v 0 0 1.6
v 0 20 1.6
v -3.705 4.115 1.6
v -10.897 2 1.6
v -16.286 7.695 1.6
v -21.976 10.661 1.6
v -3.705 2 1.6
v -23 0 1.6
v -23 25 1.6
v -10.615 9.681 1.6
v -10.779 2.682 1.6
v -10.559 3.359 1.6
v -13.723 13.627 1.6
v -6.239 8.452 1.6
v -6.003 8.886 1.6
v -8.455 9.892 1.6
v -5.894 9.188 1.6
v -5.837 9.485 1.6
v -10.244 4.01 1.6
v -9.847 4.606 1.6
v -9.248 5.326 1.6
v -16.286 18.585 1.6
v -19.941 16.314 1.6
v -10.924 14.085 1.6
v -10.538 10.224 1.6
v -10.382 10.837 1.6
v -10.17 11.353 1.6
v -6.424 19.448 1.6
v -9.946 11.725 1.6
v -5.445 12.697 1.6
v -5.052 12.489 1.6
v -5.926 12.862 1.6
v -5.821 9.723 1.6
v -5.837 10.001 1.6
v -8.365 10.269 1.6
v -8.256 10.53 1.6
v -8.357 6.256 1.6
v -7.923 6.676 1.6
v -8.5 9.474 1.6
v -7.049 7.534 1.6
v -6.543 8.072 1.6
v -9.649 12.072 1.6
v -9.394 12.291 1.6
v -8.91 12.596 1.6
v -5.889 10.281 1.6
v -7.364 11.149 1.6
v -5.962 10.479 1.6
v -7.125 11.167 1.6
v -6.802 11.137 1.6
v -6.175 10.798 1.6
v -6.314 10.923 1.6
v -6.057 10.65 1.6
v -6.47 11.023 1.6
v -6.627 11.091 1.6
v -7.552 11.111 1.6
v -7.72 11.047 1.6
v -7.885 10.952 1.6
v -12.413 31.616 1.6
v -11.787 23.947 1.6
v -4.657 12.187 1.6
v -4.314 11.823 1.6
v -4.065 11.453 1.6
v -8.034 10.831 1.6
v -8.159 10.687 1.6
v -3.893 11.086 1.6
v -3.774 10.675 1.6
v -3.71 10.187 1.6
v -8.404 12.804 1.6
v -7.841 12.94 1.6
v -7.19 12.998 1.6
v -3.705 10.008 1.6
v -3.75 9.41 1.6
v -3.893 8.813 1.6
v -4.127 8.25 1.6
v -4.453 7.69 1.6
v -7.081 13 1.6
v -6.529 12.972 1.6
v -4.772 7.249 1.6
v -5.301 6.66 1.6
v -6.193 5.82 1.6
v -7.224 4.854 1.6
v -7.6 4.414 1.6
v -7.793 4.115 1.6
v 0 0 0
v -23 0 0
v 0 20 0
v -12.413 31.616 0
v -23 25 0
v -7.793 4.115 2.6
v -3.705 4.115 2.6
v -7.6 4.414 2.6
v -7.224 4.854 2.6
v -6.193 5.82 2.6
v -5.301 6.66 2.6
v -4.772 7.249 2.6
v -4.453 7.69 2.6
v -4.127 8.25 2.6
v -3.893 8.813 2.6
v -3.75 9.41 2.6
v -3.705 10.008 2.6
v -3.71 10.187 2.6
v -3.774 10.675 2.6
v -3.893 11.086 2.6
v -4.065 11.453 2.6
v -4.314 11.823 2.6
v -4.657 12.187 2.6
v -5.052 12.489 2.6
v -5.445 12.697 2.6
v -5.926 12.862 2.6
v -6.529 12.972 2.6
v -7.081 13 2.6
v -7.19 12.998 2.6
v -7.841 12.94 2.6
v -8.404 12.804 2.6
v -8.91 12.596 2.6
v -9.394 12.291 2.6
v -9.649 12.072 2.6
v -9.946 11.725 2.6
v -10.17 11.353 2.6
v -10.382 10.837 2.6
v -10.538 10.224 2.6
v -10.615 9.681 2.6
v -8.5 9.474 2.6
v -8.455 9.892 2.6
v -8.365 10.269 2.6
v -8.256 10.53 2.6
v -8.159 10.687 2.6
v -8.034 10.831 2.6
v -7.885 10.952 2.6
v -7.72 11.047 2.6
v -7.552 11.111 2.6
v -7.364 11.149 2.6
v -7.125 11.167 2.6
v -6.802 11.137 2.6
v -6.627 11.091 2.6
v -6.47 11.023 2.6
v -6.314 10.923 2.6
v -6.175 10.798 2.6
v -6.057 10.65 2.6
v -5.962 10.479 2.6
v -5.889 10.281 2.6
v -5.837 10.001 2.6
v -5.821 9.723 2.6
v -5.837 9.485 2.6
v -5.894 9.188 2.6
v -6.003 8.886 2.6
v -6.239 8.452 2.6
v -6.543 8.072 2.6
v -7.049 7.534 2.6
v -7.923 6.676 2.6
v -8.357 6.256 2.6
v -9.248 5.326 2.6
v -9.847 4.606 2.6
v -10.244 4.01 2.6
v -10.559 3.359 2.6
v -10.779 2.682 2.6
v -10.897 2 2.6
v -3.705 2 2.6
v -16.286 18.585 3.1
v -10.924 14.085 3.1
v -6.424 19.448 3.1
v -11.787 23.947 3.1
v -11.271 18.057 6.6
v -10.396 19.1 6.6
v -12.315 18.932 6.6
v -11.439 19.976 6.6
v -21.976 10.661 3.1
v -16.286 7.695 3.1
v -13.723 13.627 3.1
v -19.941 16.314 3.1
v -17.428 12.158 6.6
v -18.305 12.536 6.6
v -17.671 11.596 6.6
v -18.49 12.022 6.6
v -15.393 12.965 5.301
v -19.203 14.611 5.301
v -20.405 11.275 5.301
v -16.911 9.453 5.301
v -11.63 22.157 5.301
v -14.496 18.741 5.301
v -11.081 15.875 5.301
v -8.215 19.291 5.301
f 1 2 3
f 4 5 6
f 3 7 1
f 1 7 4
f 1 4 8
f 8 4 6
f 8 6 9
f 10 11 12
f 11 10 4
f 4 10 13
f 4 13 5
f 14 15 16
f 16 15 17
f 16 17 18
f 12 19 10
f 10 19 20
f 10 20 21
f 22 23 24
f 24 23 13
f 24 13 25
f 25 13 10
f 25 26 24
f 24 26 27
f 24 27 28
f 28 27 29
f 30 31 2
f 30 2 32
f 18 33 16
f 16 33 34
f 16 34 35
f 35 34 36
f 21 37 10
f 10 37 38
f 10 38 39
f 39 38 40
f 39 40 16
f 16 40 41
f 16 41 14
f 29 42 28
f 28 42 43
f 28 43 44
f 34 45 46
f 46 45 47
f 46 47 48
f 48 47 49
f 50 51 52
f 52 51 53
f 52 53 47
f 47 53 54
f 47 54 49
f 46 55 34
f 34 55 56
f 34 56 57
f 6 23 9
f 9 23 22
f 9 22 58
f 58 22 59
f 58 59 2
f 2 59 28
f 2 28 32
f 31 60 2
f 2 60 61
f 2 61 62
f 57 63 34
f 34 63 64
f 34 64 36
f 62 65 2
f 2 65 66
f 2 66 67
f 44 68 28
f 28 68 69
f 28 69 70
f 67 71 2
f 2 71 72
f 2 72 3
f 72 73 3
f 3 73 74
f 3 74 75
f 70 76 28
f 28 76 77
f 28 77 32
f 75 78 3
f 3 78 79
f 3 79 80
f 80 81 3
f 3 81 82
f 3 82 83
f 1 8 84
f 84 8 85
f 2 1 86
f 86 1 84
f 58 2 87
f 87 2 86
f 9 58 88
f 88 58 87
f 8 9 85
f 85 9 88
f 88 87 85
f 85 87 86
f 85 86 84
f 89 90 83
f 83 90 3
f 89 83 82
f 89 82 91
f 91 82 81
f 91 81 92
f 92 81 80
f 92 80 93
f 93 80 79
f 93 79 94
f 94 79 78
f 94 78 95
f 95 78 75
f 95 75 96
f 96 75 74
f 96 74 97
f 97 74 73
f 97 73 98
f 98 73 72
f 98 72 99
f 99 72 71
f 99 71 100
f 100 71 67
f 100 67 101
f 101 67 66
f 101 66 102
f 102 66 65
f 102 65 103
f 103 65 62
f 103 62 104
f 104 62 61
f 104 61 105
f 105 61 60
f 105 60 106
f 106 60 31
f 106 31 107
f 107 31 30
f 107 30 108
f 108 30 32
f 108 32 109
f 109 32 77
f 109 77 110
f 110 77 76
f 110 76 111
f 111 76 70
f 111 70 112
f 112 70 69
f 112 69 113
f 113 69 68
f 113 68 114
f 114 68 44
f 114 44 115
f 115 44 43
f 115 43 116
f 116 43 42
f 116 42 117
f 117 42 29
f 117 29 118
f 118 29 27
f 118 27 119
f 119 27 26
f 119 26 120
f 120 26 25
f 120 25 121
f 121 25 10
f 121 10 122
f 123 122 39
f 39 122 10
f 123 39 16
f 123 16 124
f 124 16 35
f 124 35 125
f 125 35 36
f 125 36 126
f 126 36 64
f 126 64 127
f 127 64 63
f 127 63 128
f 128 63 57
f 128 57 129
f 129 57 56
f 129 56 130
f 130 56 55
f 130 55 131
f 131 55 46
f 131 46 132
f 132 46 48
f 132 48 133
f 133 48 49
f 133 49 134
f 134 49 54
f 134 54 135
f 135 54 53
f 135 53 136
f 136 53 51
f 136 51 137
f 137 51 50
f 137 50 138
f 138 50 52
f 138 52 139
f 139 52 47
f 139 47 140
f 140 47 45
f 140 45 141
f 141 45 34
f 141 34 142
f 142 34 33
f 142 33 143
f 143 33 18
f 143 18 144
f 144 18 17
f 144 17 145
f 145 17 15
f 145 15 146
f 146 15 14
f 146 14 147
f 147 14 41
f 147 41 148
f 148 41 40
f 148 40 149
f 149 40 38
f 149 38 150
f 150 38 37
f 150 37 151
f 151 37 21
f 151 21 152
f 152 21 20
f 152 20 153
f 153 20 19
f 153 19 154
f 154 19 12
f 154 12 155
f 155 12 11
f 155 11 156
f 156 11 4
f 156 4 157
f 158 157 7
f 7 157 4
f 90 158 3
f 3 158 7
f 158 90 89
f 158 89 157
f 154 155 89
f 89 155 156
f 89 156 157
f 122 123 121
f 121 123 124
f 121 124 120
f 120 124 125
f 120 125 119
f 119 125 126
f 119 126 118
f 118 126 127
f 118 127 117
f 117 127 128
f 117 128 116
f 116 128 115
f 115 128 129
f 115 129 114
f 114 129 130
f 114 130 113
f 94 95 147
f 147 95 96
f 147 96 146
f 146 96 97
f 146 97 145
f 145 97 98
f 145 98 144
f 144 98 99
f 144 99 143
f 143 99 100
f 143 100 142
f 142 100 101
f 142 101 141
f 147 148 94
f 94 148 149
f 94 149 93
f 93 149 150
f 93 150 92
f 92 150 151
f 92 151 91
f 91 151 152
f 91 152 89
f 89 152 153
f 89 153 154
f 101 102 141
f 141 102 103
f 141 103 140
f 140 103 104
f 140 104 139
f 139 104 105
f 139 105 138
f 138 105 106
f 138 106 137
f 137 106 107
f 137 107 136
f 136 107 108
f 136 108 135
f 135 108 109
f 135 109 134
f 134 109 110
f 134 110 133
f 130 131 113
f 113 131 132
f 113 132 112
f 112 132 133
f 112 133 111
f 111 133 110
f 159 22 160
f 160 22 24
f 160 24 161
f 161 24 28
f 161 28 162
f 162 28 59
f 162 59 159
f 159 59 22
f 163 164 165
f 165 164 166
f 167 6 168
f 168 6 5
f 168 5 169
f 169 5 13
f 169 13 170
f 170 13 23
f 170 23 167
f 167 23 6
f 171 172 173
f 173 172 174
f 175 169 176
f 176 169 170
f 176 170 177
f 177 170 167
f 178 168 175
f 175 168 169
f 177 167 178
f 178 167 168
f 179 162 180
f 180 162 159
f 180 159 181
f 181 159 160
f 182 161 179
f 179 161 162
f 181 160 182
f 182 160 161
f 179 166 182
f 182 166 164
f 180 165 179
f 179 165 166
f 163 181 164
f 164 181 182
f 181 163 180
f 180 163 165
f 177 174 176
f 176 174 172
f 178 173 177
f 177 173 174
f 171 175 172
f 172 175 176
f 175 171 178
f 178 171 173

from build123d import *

# Parameters (mm, degrees)
P_IDAT_VYSUNUT_M5_DEPTH = 1.6
P_IDAT_VYSUNUT_M6_DEPTH = 1
P_IDAT_VYSUNUT_M7_DEPTH = 5
ZKOSEN_1_SIZE           = 3.5
ZKOSEN_1_SIZE2          = 2.020725942
ZKOSEN_1_PART_2_SIZE    = 3.5
ZKOSEN_1_PART_2_SIZE2   = 2.020725942
ZKOSEN_1_PART_3_SIZE    = 3.5
ZKOSEN_1_PART_3_SIZE2   = 2.020725942
ZKOSEN_1_PART_4_SIZE    = 3.5
ZKOSEN_1_PART_4_SIZE2   = 2.020725942
ZKOSEN_1_PART_5_SIZE    = 3.5
ZKOSEN_1_PART_5_SIZE2   = 2.020725942
ZKOSEN_1_PART_6_SIZE    = 3.5
ZKOSEN_1_PART_6_SIZE2   = 2.020725942
ZKOSEN_1_PART_7_SIZE    = 3.5
ZKOSEN_1_PART_7_SIZE2   = 2.020725942
ZKOSEN_1_PART_8_SIZE    = 3.5
ZKOSEN_1_PART_8_SIZE2   = 2.020725942
ZKOSEN_2_SIZE           = 1.5
ZKOSEN_2_SIZE2          = 0.798133329
ZKOSEN_2_PART_2_SIZE    = 1.5
ZKOSEN_2_PART_2_SIZE2   = 0.798133329
ZKOSEN_2_PART_3_SIZE    = 1.5
ZKOSEN_2_PART_3_SIZE2   = 0.798133329
ZKOSEN_2_PART_4_SIZE    = 1.5
ZKOSEN_2_PART_4_SIZE2   = 0.798133329
ZKOSEN_2_PART_5_SIZE    = 1.5
ZKOSEN_2_PART_5_SIZE2   = 0.798133329
ZKOSEN_2_PART_6_SIZE    = 1.5
ZKOSEN_2_PART_6_SIZE2   = 0.798133329
ZKOSEN_2_PART_7_SIZE    = 1.5
ZKOSEN_2_PART_7_SIZE2   = 0.798133329
ZKOSEN_2_PART_8_SIZE    = 1.5
ZKOSEN_2_PART_8_SIZE2   = 0.798133329


with BuildPart() as part:
    # Skica1 → Přidat vysunutím5 (new body)
    with BuildSketch(Plane.XY):
        Polygon((0, 0), (0, 20), (-12.412784718, 31.615626352), (-23, 25), (-23, 0), align=None)
    extrude(amount=P_IDAT_VYSUNUT_M5_DEPTH)

    # Skica2 → Přidat vysunutím6 (add)
    with BuildSketch(Plane.XY.offset(1.6)):
        with BuildLine():
            Line((-3.705128205, 4.115384615), (-3.705128205, 2))
            Line((-3.705128205, 2), (-10.897435897, 2))
            add(Edge.make_bspline(
                [(-10.897435897, 2), (-10.87308441, 2.180790308), (-10.824395089, 2.542269551), (-10.673865117, 3.070299742), (-10.472959166, 3.585566992), (-10.254913916, 4.004869463), (-10.038043764, 4.342393523), (-9.841277463, 4.618963346), (-9.60654249, 4.913221767), (-9.337245105, 5.227544267), (-9.034873554, 5.562913411), (-8.697171951, 5.918082368), (-8.322529407, 6.291350846), (-8.058961705, 6.54481851), (-7.922676282, 6.67588141)],
                knots=[0, 0, 0, 0, 0.000546661, 0.001093015, 0.001642153, 0.002203944, 0.002507135, 0.00284526, 0.003221747, 0.003635945, 0.00408685, 0.004576261, 0.005106025, 0.00567326, 0.00567326, 0.00567326, 0.00567326], degree=3))
            add(Edge.make_bspline(
                [(-7.922676282, 6.67588141), (-7.813918956, 6.780862005), (-7.606877039, 6.980714138), (-7.312048947, 7.266894293), (-7.052864674, 7.529975199), (-6.823905036, 7.763139303), (-6.630459323, 7.972323552), (-6.469982936, 8.154242742), (-6.34044346, 8.309637702), (-6.270284768, 8.408220362), (-6.239182692, 8.451923077)],
                knots=[0, 0, 0, 0, 0.000453482, 0.000863296, 0.001232576, 0.001561374, 0.001843606, 0.002087173, 0.00228919, 0.002450062, 0.002450062, 0.002450062, 0.002450062], degree=3))
            add(Edge.make_bspline(
                [(-6.239182692, 8.451923077), (-6.175493233, 8.557718073), (-6.052643645, 8.761784362), (-5.91792888, 9.082682292), (-5.837068057, 9.403513936), (-5.825971765, 9.617891805), (-5.820512821, 9.723357372)],
                knots=[0, 0, 0, 0, 0.000370068, 0.000713818, 0.001040364, 0.001356575, 0.001356575, 0.001356575, 0.001356575], degree=3))
            add(Edge.make_bspline(
                [(-5.820512821, 9.723357372), (-5.824474653, 9.833108474), (-5.831970132, 10.040748999), (-5.894821019, 10.333768175), (-6.006276867, 10.585659667), (-6.15973106, 10.797196661), (-6.353774193, 10.962935085), (-6.580616259, 11.085399693), (-6.843577862, 11.153106661), (-7.028402789, 11.16201224), (-7.125, 11.166666667)],
                knots=[0, 0, 0, 0, 0.000329064, 0.000622563, 0.000892834, 0.001149779, 0.00139978, 0.001652148, 0.001916728, 0.002206405, 0.002206405, 0.002206405, 0.002206405], degree=3))
            add(Edge.make_bspline(
                [(-7.125, 11.166666667), (-7.220944609, 11.16231978), (-7.406288878, 11.153922533), (-7.669703299, 11.080565334), (-7.900142302, 10.953576306), (-8.06436539, 10.808860058), (-8.175305876, 10.668134018), (-8.250896853, 10.545500545), (-8.316050374, 10.406151312), (-8.37378183, 10.251655158), (-8.419383153, 10.080242168), (-8.456107626, 9.893217825), (-8.485702239, 9.689575671), (-8.495113848, 9.547907653), (-8.5, 9.474358974)],
                knots=[0, 0, 0, 0, 0.000287482, 0.000555353, 0.000811759, 0.001070877, 0.001205779, 0.00134826, 0.001502018, 0.001666561, 0.00184243, 0.002033439, 0.002238177, 0.002459233, 0.002459233, 0.002459233, 0.002459233], degree=3))
            Line((-8.5, 9.474358974), (-10.615384615, 9.681490385))
            add(Edge.make_bspline(
                [(-10.615384615, 9.681490385), (-10.598377251, 9.824305509), (-10.565402688, 10.101201217), (-10.483114114, 10.498918926), (-10.378898684, 10.865831465), (-10.247788098, 11.201257911), (-10.095201314, 11.507331251), (-9.913355139, 11.779458664), (-9.708603468, 12.020654551), (-9.480769352, 12.230790543), (-9.231301205, 12.410535137), (-8.969529148, 12.57098477), (-8.690337423, 12.702604473), (-8.396799939, 12.811078884), (-8.089049352, 12.897770766), (-7.765662274, 12.955090263), (-7.42863453, 12.995409017), (-7.198577984, 12.998446608), (-7.080929487, 13)],
                knots=[0, 0, 0, 0, 0.000431306, 0.000836233, 0.001217004, 0.001574233, 0.001915203, 0.002240945, 0.002553567, 0.002862328, 0.003168197, 0.003474678, 0.003782194, 0.004092453, 0.004412693, 0.004739863, 0.005076887, 0.005429623, 0.005429623, 0.005429623, 0.005429623], degree=3))
            add(Edge.make_bspline(
                [(-7.080929487, 13), (-6.953030371, 12.997541845), (-6.703930784, 12.992754281), (-6.34028961, 12.953218534), (-5.998674853, 12.884282231), (-5.676099879, 12.79296634), (-5.375877361, 12.67105295), (-5.095505554, 12.52366473), (-4.83939702, 12.345207999), (-4.603734114, 12.145414763), (-4.393070332, 11.925706984), (-4.20854792, 11.691351493), (-4.053955652, 11.442511564), (-3.924228998, 11.182220281), (-3.827907833, 10.90628918), (-3.757724044, 10.618533633), (-3.711189366, 10.317611197), (-3.707170936, 10.112088), (-3.705128205, 10.007612179)],
                knots=[0, 0, 0, 0, 0.000383641, 0.00074719, 0.0010955, 0.001428145, 0.001751403, 0.002065859, 0.002376361, 0.002685876, 0.002991333, 0.003287991, 0.003579024, 0.003868752, 0.004158681, 0.00445369, 0.004756592, 0.005069772, 0.005069772, 0.005069772, 0.005069772], degree=3))
            add(Edge.make_bspline(
                [(-3.705128205, 10.007612179), (-3.707819477, 9.887707131), (-3.713158546, 9.649833916), (-3.764276175, 9.298186238), (-3.84237396, 8.954647512), (-3.957796338, 8.618378159), (-4.104103161, 8.28131186), (-4.292696164, 7.942692037), (-4.511666905, 7.592306518), (-4.683112364, 7.36576699), (-4.771634615, 7.248798077)],
                knots=[0, 0, 0, 0, 0.000359506, 0.000713204, 0.001063842, 0.00141504, 0.001778167, 0.002164709, 0.002576738, 0.003016589, 0.003016589, 0.003016589, 0.003016589], degree=3))
            add(Edge.make_bspline(
                [(-4.771634615, 7.248798077), (-4.80509214, 7.206658226), (-4.876750403, 7.116404431), (-4.998659939, 6.978014195), (-5.139942605, 6.826848432), (-5.298602846, 6.660077667), (-5.479881522, 6.483607708), (-5.677256214, 6.290058721), (-5.899411985, 6.089331377), (-6.12951153, 5.876418507), (-6.360611244, 5.669193404), (-6.5730252, 5.472375498), (-6.765967752, 5.298233923), (-6.930453202, 5.137155265), (-7.076156545, 5.000133027), (-7.197826149, 4.880140867), (-7.29773874, 4.780083699), (-7.43541186, 4.624119958), (-7.610585282, 4.413178934), (-7.733826947, 4.21161882), (-7.792668269, 4.115384615)],
                knots=[0, 0, 0, 0, 0.0001614, 0.000345681, 0.000553058, 0.000782151, 0.00103613, 0.001311959, 0.001611379, 0.001934216, 0.002252456, 0.002542536, 0.002802971, 0.003032064, 0.003233117, 0.00340296, 0.003544758, 0.003657116, 0.004027059, 0.004365069, 0.004365069, 0.004365069, 0.004365069], degree=3))
            Line((-7.792668269, 4.115384615), (-3.705128205, 4.115384615))
        make_face()
    extrude(amount=P_IDAT_VYSUNUT_M6_DEPTH)

    # Skica3 → Přidat vysunutím7 (add)
    with BuildSketch(Plane.XY.offset(1.6)):
        Polygon((-10.923902938, 14.085251037), (-6.42438967, 19.447562139), (-11.786700772, 23.947075407), (-16.28621404, 18.584764305), align=None)
        Polygon((-16.28621404, 7.694697517), (-13.722737722, 13.627013902), (-19.940805957, 16.31396949), (-21.976156172, 10.660855709), align=None)
    extrude(amount=P_IDAT_VYSUNUT_M7_DEPTH)

    # Zkosení1
    zkosen_1_edges = [part.edges().sort_by_distance(p)[0] for p in [
        (-13.605058489, 16.335007671, 6.6),
    ]]
    zkosen_1_side = [part.faces().sort_by_distance(p)[0] for p in [
        (-13.605058489, 16.335007671, 4.1),
    ]]
    chamfer(zkosen_1_edges, length=ZKOSEN_1_SIZE, length2=ZKOSEN_1_SIZE2, reference=zkosen_1_side[0])

    # Zkosení1 part 2
    zkosen_1_part_2_edges = [part.edges().sort_by_distance(p)[0] for p in [
        (-8.674146304, 16.766406588, 6.6),
    ]]
    zkosen_1_part_2_side = [part.faces().sort_by_distance(p)[0] for p in [
        (-8.674146304, 16.766406588, 4.1),
    ]]
    chamfer(zkosen_1_part_2_edges, length=ZKOSEN_1_PART_2_SIZE, length2=ZKOSEN_1_PART_2_SIZE2, reference=zkosen_1_part_2_side[0])

    # Zkosení1 part 3
    zkosen_1_part_3_edges = [part.edges().sort_by_distance(p)[0] for p in [
        (-9.105545221, 21.697318773, 6.6),
    ]]
    zkosen_1_part_3_side = [part.faces().sort_by_distance(p)[0] for p in [
        (-9.105545221, 21.697318773, 4.1),
    ]]
    chamfer(zkosen_1_part_3_edges, length=ZKOSEN_1_PART_3_SIZE, length2=ZKOSEN_1_PART_3_SIZE2, reference=zkosen_1_part_3_side[0])

    # Zkosení1 part 4
    zkosen_1_part_4_edges = [part.edges().sort_by_distance(p)[0] for p in [
        (-14.036457406, 21.265919856, 6.6),
    ]]
    zkosen_1_part_4_side = [part.faces().sort_by_distance(p)[0] for p in [
        (-14.036457406, 21.265919856, 4.1),
    ]]
    chamfer(zkosen_1_part_4_edges, length=ZKOSEN_1_PART_4_SIZE, length2=ZKOSEN_1_PART_4_SIZE2, reference=zkosen_1_part_4_side[0])

    # Zkosení1 part 5
    zkosen_1_part_5_edges = [part.edges().sort_by_distance(p)[0] for p in [
        (-19.131185106, 9.177776613, 6.6),
    ]]
    zkosen_1_part_5_side = [part.faces().sort_by_distance(p)[0] for p in [
        (-19.131185106, 9.177776613, 4.1),
    ]]
    chamfer(zkosen_1_part_5_edges, length=ZKOSEN_1_PART_5_SIZE, length2=ZKOSEN_1_PART_5_SIZE2, reference=zkosen_1_part_5_side[0])

    # Zkosení1 part 6
    zkosen_1_part_6_edges = [part.edges().sort_by_distance(p)[0] for p in [
        (-15.004475881, 10.660855709, 6.6),
    ]]
    zkosen_1_part_6_side = [part.faces().sort_by_distance(p)[0] for p in [
        (-15.004475881, 10.660855709, 4.1),
    ]]
    chamfer(zkosen_1_part_6_edges, length=ZKOSEN_1_PART_6_SIZE, length2=ZKOSEN_1_PART_6_SIZE2, reference=zkosen_1_part_6_side[0])

    # Zkosení1 part 7
    zkosen_1_part_7_edges = [part.edges().sort_by_distance(p)[0] for p in [
        (-16.831771839, 14.970491696, 6.6),
    ]]
    zkosen_1_part_7_side = [part.faces().sort_by_distance(p)[0] for p in [
        (-16.831771839, 14.970491696, 4.1),
    ]]
    chamfer(zkosen_1_part_7_edges, length=ZKOSEN_1_PART_7_SIZE, length2=ZKOSEN_1_PART_7_SIZE2, reference=zkosen_1_part_7_side[0])

    # Zkosení1 part 8
    zkosen_1_part_8_edges = [part.edges().sort_by_distance(p)[0] for p in [
        (-20.958481064, 13.4874126, 6.6),
    ]]
    zkosen_1_part_8_side = [part.faces().sort_by_distance(p)[0] for p in [
        (-20.958481064, 13.4874126, 4.1),
    ]]
    chamfer(zkosen_1_part_8_edges, length=ZKOSEN_1_PART_8_SIZE, length2=ZKOSEN_1_PART_8_SIZE2, reference=zkosen_1_part_8_side[0])

    # Zkosení2
    zkosen_2_edges = [part.edges().sort_by_distance(p)[0] for p in [
        (-16.829194071, 11.532374342, 6.6),
    ]]
    zkosen_2_side = [part.faces().sort_by_distance(p)[0] for p in [
        (-15.77075521, 11.02684467, 4.569803757),
    ]]
    chamfer(zkosen_2_edges, length=ZKOSEN_2_SIZE, length2=ZKOSEN_2_SIZE2, reference=zkosen_2_side[0])

    # Zkosení2 part 2
    zkosen_2_part_2_edges = [part.edges().sort_by_distance(p)[0] for p in [
        (-17.573678925, 13.089765682, 6.6),
    ]]
    zkosen_2_part_2_side = [part.faces().sort_by_distance(p)[0] for p in [
        (-17.147713244, 14.169583833, 4.590476284),
    ]]
    chamfer(zkosen_2_part_2_edges, length=ZKOSEN_2_PART_2_SIZE, length2=ZKOSEN_2_PART_2_SIZE2, reference=zkosen_2_part_2_side[0])

    # Zkosení2 part 3
    zkosen_2_part_3_edges = [part.edges().sort_by_distance(p)[0] for p in [
        (-19.122574482, 12.621393223, 6.6),
    ]]
    zkosen_2_part_3_side = [part.faces().sort_by_distance(p)[0] for p in [
        (-20.188422633, 13.124166708, 4.568051009),
    ]]
    chamfer(zkosen_2_part_3_edges, length=ZKOSEN_2_PART_3_SIZE, length2=ZKOSEN_2_PART_3_SIZE2, reference=zkosen_2_part_3_side[0])

    # Zkosení2 part 4
    zkosen_2_part_4_edges = [part.edges().sort_by_distance(p)[0] for p in [
        (-18.378089628, 11.064001883, 6.6),
    ]]
    zkosen_2_part_4_side = [part.faces().sort_by_distance(p)[0] for p in [
        (-18.810204822, 9.981713353, 4.591751084),
    ]]
    chamfer(zkosen_2_part_4_edges, length=ZKOSEN_2_PART_4_SIZE, length2=ZKOSEN_2_PART_4_SIZE2, reference=zkosen_2_part_4_side[0])

    # Zkosení2 part 5
    zkosen_2_part_5_edges = [part.edges().sort_by_distance(p)[0] for p in [
        (-10.404442819, 20.149352894, 6.6),
    ]]
    zkosen_2_part_5_side = [part.faces().sort_by_distance(p)[0] for p in [
        (-9.66713931, 21.028037, 4.613267339),
    ]]
    chamfer(zkosen_2_part_5_edges, length=ZKOSEN_2_PART_5_SIZE, length2=ZKOSEN_2_PART_5_SIZE2, reference=zkosen_2_part_5_side[0])

    # Zkosení2 part 6
    zkosen_2_part_6_edges = [part.edges().sort_by_distance(p)[0] for p in [
        (-12.488491527, 19.967022258, 6.6),
    ]]
    zkosen_2_part_6_side = [part.faces().sort_by_distance(p)[0] for p in [
        (-13.367175633, 20.704325767, 4.613267339),
    ]]
    chamfer(zkosen_2_part_6_edges, length=ZKOSEN_2_PART_6_SIZE, length2=ZKOSEN_2_PART_6_SIZE2, reference=zkosen_2_part_6_side[0])

    # Zkosení2 part 7
    zkosen_2_part_7_edges = [part.edges().sort_by_distance(p)[0] for p in [
        (-12.30616089, 17.88297355, 6.6),
    ]]
    zkosen_2_part_7_side = [part.faces().sort_by_distance(p)[0] for p in [
        (-13.0434644, 17.004289444, 4.613267339),
    ]]
    chamfer(zkosen_2_part_7_edges, length=ZKOSEN_2_PART_7_SIZE, length2=ZKOSEN_2_PART_7_SIZE2, reference=zkosen_2_part_7_side[0])

    # Zkosení2 part 8
    zkosen_2_part_8_edges = [part.edges().sort_by_distance(p)[0] for p in [
        (-10.222112183, 18.065304186, 6.6),
    ]]
    zkosen_2_part_8_side = [part.faces().sort_by_distance(p)[0] for p in [
        (-9.343428077, 17.328000677, 4.613267339),
    ]]
    chamfer(zkosen_2_part_8_edges, length=ZKOSEN_2_PART_8_SIZE, length2=ZKOSEN_2_PART_8_SIZE2, reference=zkosen_2_part_8_side[0])


solid = part.part
